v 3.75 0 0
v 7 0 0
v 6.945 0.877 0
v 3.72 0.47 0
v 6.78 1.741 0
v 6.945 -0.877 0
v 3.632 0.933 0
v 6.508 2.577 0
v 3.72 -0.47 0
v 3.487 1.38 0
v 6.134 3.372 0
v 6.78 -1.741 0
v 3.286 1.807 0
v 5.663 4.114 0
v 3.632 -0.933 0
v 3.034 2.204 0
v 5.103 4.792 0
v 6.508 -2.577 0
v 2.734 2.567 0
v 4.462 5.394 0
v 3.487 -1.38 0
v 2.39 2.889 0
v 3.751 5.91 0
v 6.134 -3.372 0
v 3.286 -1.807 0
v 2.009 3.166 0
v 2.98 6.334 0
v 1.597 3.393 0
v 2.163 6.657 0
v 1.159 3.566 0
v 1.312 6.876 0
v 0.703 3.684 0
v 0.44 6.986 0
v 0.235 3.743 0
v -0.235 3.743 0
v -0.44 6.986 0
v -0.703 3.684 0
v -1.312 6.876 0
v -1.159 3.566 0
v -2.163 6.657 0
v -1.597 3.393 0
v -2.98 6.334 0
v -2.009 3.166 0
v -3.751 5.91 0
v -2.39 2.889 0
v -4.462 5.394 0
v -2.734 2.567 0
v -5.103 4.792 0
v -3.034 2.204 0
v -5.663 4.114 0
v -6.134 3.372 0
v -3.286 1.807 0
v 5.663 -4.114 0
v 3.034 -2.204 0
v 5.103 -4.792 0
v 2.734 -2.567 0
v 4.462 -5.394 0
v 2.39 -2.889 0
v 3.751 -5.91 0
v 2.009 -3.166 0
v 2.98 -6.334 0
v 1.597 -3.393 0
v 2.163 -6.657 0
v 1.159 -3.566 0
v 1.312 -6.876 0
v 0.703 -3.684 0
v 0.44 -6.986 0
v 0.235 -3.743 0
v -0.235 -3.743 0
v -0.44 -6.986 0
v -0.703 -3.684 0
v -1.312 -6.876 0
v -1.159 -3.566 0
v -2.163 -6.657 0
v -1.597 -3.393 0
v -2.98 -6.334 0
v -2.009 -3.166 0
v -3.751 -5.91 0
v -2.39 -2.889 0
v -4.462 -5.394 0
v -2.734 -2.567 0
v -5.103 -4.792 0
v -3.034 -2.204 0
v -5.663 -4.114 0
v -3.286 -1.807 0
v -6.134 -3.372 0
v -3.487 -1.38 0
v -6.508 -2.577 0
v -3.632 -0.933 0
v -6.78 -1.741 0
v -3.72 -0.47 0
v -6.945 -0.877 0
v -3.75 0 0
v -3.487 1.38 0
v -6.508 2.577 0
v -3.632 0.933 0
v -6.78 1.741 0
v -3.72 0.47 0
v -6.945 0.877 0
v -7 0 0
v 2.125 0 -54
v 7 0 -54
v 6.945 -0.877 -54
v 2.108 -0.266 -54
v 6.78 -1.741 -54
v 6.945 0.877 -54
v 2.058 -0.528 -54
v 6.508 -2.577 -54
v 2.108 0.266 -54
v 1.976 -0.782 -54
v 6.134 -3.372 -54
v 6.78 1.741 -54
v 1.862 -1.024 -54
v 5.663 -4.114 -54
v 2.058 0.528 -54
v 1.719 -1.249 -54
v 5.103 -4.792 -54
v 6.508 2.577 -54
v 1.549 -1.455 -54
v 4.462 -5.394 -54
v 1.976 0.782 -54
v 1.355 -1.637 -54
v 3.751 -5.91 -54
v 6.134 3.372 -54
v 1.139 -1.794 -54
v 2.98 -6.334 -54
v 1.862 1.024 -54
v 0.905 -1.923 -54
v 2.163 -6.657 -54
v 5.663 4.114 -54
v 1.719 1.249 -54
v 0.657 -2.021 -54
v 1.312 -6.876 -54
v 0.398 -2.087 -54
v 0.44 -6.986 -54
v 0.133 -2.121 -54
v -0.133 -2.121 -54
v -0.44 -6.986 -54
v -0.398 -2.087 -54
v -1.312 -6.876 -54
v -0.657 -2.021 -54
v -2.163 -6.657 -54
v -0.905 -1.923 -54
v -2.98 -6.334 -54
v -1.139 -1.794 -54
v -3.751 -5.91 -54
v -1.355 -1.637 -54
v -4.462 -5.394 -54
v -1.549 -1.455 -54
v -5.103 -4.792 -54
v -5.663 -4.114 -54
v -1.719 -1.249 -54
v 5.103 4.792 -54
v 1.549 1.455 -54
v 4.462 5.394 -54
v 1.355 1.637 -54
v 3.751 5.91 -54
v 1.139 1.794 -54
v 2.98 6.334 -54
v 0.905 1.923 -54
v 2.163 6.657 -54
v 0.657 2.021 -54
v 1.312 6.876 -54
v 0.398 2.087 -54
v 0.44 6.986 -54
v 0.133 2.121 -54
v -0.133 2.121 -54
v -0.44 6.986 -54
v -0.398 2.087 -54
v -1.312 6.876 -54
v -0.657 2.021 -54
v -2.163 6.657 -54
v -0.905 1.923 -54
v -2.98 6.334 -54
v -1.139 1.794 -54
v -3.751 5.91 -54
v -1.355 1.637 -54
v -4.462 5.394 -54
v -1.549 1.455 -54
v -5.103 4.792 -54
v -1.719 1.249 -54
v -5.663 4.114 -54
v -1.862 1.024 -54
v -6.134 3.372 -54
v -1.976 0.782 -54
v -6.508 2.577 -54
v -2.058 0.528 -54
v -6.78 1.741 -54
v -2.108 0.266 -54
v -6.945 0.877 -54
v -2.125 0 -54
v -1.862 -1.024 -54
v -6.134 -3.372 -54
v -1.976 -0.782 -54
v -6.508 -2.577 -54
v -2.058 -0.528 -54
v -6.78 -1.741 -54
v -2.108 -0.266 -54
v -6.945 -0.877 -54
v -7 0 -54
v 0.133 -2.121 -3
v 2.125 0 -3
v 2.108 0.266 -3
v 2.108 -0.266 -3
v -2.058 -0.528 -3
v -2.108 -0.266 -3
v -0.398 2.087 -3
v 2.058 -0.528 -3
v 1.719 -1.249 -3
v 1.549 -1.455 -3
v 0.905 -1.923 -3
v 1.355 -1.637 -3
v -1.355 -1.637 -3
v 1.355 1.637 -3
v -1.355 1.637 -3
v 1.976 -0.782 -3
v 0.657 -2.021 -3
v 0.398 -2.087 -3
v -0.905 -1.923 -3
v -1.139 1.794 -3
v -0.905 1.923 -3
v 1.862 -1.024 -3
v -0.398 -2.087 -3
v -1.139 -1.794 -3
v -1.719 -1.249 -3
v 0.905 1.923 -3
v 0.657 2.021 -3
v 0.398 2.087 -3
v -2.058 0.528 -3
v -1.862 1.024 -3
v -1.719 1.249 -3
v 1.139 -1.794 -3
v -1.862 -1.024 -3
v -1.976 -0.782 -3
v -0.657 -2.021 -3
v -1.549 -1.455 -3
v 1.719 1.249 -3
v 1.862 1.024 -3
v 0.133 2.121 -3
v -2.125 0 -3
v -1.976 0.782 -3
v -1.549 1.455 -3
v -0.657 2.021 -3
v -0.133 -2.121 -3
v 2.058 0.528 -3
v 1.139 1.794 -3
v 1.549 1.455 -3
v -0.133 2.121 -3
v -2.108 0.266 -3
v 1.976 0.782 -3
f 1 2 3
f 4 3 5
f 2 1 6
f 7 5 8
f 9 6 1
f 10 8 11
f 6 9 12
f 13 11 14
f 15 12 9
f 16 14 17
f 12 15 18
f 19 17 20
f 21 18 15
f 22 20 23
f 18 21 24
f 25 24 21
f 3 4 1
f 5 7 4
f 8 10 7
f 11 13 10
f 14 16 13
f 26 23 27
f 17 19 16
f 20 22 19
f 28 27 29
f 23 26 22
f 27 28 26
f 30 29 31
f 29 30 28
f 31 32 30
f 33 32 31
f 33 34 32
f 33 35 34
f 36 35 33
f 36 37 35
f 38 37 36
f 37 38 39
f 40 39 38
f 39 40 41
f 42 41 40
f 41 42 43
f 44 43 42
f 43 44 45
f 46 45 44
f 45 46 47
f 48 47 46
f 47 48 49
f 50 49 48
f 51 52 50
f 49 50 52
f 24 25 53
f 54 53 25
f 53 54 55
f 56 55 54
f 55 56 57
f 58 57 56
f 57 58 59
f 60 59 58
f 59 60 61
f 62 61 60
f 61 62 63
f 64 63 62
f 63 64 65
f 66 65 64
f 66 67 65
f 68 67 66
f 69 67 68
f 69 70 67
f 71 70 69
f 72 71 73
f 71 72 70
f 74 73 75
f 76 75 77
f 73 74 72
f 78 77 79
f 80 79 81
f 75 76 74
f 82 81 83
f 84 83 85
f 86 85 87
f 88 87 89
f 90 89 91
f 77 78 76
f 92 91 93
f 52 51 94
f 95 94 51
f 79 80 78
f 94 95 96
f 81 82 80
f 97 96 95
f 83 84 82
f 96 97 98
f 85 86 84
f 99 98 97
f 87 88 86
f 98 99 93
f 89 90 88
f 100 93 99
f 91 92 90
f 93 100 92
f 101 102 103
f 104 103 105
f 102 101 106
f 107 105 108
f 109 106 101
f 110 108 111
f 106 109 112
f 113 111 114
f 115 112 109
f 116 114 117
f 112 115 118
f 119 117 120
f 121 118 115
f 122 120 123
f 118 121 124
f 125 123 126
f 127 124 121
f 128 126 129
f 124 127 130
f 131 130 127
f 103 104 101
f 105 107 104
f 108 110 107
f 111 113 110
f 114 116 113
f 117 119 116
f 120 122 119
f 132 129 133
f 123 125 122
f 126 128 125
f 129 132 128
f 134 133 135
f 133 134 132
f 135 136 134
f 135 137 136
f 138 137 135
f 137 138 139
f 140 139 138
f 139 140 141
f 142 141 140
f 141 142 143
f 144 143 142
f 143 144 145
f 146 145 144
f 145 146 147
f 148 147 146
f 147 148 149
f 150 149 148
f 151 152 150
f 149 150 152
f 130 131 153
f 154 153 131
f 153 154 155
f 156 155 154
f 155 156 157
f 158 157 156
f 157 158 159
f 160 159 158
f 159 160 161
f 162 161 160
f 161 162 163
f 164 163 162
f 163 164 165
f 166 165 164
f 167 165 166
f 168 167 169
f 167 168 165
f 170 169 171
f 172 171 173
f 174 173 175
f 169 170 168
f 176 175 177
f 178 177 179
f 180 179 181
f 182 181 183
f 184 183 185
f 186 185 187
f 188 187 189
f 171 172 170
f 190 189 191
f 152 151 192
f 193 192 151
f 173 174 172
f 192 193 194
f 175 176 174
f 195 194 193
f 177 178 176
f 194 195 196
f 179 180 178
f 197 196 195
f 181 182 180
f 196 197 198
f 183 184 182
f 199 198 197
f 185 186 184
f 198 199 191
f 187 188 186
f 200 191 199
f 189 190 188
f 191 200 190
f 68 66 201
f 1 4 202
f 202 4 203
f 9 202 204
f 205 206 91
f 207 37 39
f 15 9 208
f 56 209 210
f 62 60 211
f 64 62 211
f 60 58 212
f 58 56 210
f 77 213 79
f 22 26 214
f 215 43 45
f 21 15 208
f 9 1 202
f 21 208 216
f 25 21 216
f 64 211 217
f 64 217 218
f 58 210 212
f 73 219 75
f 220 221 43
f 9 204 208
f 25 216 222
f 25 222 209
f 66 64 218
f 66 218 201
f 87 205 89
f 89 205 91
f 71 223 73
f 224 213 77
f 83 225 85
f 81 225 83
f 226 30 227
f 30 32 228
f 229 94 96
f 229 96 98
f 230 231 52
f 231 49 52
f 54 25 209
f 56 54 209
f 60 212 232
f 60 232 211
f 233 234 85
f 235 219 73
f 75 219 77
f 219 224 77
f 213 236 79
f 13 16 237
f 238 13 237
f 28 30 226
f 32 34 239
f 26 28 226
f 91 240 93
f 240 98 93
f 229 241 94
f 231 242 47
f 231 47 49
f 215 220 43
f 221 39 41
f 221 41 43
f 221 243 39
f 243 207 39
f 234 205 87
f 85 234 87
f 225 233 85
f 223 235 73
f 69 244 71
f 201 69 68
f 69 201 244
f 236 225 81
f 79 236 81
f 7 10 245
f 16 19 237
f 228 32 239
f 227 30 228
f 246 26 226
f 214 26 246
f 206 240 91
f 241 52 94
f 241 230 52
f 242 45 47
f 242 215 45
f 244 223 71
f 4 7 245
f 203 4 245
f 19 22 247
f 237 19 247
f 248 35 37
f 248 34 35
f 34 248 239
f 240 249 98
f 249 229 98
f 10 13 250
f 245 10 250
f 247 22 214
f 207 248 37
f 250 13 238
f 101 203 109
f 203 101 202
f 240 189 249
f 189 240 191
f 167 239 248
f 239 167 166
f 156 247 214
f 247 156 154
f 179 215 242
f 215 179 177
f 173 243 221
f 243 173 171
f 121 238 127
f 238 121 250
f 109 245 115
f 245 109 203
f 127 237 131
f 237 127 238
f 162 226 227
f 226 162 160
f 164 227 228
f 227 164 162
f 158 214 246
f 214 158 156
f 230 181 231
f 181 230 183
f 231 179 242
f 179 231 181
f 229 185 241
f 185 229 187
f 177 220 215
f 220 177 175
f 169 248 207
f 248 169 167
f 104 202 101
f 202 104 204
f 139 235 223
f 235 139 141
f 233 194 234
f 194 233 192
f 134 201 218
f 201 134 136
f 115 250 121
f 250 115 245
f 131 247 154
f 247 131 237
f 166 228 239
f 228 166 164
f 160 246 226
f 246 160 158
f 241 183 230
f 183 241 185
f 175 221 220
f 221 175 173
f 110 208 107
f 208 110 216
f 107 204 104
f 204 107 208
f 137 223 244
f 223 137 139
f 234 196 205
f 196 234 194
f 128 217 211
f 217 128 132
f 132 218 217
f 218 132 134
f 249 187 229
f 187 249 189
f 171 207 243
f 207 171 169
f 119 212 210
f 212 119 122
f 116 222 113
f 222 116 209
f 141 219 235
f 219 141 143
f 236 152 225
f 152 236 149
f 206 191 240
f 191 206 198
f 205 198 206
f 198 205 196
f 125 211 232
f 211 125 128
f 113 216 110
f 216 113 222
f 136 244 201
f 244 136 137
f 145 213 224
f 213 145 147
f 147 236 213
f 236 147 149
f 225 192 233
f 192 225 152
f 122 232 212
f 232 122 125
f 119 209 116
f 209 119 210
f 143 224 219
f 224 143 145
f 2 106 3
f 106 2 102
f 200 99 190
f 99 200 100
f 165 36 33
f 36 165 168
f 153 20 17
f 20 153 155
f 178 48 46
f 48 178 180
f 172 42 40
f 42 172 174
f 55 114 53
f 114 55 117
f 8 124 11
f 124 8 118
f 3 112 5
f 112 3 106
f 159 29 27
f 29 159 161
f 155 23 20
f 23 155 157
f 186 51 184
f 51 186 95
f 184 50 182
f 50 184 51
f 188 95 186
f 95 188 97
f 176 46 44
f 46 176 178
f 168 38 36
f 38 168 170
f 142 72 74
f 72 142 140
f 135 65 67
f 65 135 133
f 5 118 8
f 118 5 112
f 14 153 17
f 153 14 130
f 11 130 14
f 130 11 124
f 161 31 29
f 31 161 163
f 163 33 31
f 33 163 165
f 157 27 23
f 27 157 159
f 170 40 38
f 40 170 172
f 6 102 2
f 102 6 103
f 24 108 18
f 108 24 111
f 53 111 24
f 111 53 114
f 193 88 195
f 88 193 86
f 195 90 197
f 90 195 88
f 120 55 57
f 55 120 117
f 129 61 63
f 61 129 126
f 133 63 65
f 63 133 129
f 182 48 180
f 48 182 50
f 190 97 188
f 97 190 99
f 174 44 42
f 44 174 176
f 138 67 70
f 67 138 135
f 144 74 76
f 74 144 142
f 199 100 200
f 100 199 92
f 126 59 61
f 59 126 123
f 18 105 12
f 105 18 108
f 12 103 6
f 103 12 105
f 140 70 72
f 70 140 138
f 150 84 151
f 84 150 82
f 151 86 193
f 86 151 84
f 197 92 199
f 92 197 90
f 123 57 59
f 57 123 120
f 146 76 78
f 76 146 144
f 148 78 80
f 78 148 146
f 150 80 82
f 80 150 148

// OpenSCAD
$fn = 50;


difference() {
	union() {
		translate(v = [0, 0, -54.0000000000]) {
			cylinder(h = 54, r = 7.0000000000);
		}
		cylinder(h = 0, r = 17.0000000000);
	}
	union() {
		translate(v = [0, 0, 0]) {
			rotate(a = [0, 0, 0]) {
				difference() {
					union() {
						#translate(v = [0, 0, -54.0000000000]) {
							cylinder(h = 54, r = 2.0000000000);
						}
						#translate(v = [0, 0, -3]) {
							cylinder(h = 3, r = 7.0000000000, r1 = 2.1250000000, r2 = 3.7500000000);
						}
						#translate(v = [0, 0, -54.0000000000]) {
							cylinder(h = 54, r = 2.1250000000);
						}
						#translate(v = [0, 0, -54.0000000000]) {
							cylinder(h = 54, r = 2.0000000000);
						}
					}
					union();
				}
			}
		}
	}
}
